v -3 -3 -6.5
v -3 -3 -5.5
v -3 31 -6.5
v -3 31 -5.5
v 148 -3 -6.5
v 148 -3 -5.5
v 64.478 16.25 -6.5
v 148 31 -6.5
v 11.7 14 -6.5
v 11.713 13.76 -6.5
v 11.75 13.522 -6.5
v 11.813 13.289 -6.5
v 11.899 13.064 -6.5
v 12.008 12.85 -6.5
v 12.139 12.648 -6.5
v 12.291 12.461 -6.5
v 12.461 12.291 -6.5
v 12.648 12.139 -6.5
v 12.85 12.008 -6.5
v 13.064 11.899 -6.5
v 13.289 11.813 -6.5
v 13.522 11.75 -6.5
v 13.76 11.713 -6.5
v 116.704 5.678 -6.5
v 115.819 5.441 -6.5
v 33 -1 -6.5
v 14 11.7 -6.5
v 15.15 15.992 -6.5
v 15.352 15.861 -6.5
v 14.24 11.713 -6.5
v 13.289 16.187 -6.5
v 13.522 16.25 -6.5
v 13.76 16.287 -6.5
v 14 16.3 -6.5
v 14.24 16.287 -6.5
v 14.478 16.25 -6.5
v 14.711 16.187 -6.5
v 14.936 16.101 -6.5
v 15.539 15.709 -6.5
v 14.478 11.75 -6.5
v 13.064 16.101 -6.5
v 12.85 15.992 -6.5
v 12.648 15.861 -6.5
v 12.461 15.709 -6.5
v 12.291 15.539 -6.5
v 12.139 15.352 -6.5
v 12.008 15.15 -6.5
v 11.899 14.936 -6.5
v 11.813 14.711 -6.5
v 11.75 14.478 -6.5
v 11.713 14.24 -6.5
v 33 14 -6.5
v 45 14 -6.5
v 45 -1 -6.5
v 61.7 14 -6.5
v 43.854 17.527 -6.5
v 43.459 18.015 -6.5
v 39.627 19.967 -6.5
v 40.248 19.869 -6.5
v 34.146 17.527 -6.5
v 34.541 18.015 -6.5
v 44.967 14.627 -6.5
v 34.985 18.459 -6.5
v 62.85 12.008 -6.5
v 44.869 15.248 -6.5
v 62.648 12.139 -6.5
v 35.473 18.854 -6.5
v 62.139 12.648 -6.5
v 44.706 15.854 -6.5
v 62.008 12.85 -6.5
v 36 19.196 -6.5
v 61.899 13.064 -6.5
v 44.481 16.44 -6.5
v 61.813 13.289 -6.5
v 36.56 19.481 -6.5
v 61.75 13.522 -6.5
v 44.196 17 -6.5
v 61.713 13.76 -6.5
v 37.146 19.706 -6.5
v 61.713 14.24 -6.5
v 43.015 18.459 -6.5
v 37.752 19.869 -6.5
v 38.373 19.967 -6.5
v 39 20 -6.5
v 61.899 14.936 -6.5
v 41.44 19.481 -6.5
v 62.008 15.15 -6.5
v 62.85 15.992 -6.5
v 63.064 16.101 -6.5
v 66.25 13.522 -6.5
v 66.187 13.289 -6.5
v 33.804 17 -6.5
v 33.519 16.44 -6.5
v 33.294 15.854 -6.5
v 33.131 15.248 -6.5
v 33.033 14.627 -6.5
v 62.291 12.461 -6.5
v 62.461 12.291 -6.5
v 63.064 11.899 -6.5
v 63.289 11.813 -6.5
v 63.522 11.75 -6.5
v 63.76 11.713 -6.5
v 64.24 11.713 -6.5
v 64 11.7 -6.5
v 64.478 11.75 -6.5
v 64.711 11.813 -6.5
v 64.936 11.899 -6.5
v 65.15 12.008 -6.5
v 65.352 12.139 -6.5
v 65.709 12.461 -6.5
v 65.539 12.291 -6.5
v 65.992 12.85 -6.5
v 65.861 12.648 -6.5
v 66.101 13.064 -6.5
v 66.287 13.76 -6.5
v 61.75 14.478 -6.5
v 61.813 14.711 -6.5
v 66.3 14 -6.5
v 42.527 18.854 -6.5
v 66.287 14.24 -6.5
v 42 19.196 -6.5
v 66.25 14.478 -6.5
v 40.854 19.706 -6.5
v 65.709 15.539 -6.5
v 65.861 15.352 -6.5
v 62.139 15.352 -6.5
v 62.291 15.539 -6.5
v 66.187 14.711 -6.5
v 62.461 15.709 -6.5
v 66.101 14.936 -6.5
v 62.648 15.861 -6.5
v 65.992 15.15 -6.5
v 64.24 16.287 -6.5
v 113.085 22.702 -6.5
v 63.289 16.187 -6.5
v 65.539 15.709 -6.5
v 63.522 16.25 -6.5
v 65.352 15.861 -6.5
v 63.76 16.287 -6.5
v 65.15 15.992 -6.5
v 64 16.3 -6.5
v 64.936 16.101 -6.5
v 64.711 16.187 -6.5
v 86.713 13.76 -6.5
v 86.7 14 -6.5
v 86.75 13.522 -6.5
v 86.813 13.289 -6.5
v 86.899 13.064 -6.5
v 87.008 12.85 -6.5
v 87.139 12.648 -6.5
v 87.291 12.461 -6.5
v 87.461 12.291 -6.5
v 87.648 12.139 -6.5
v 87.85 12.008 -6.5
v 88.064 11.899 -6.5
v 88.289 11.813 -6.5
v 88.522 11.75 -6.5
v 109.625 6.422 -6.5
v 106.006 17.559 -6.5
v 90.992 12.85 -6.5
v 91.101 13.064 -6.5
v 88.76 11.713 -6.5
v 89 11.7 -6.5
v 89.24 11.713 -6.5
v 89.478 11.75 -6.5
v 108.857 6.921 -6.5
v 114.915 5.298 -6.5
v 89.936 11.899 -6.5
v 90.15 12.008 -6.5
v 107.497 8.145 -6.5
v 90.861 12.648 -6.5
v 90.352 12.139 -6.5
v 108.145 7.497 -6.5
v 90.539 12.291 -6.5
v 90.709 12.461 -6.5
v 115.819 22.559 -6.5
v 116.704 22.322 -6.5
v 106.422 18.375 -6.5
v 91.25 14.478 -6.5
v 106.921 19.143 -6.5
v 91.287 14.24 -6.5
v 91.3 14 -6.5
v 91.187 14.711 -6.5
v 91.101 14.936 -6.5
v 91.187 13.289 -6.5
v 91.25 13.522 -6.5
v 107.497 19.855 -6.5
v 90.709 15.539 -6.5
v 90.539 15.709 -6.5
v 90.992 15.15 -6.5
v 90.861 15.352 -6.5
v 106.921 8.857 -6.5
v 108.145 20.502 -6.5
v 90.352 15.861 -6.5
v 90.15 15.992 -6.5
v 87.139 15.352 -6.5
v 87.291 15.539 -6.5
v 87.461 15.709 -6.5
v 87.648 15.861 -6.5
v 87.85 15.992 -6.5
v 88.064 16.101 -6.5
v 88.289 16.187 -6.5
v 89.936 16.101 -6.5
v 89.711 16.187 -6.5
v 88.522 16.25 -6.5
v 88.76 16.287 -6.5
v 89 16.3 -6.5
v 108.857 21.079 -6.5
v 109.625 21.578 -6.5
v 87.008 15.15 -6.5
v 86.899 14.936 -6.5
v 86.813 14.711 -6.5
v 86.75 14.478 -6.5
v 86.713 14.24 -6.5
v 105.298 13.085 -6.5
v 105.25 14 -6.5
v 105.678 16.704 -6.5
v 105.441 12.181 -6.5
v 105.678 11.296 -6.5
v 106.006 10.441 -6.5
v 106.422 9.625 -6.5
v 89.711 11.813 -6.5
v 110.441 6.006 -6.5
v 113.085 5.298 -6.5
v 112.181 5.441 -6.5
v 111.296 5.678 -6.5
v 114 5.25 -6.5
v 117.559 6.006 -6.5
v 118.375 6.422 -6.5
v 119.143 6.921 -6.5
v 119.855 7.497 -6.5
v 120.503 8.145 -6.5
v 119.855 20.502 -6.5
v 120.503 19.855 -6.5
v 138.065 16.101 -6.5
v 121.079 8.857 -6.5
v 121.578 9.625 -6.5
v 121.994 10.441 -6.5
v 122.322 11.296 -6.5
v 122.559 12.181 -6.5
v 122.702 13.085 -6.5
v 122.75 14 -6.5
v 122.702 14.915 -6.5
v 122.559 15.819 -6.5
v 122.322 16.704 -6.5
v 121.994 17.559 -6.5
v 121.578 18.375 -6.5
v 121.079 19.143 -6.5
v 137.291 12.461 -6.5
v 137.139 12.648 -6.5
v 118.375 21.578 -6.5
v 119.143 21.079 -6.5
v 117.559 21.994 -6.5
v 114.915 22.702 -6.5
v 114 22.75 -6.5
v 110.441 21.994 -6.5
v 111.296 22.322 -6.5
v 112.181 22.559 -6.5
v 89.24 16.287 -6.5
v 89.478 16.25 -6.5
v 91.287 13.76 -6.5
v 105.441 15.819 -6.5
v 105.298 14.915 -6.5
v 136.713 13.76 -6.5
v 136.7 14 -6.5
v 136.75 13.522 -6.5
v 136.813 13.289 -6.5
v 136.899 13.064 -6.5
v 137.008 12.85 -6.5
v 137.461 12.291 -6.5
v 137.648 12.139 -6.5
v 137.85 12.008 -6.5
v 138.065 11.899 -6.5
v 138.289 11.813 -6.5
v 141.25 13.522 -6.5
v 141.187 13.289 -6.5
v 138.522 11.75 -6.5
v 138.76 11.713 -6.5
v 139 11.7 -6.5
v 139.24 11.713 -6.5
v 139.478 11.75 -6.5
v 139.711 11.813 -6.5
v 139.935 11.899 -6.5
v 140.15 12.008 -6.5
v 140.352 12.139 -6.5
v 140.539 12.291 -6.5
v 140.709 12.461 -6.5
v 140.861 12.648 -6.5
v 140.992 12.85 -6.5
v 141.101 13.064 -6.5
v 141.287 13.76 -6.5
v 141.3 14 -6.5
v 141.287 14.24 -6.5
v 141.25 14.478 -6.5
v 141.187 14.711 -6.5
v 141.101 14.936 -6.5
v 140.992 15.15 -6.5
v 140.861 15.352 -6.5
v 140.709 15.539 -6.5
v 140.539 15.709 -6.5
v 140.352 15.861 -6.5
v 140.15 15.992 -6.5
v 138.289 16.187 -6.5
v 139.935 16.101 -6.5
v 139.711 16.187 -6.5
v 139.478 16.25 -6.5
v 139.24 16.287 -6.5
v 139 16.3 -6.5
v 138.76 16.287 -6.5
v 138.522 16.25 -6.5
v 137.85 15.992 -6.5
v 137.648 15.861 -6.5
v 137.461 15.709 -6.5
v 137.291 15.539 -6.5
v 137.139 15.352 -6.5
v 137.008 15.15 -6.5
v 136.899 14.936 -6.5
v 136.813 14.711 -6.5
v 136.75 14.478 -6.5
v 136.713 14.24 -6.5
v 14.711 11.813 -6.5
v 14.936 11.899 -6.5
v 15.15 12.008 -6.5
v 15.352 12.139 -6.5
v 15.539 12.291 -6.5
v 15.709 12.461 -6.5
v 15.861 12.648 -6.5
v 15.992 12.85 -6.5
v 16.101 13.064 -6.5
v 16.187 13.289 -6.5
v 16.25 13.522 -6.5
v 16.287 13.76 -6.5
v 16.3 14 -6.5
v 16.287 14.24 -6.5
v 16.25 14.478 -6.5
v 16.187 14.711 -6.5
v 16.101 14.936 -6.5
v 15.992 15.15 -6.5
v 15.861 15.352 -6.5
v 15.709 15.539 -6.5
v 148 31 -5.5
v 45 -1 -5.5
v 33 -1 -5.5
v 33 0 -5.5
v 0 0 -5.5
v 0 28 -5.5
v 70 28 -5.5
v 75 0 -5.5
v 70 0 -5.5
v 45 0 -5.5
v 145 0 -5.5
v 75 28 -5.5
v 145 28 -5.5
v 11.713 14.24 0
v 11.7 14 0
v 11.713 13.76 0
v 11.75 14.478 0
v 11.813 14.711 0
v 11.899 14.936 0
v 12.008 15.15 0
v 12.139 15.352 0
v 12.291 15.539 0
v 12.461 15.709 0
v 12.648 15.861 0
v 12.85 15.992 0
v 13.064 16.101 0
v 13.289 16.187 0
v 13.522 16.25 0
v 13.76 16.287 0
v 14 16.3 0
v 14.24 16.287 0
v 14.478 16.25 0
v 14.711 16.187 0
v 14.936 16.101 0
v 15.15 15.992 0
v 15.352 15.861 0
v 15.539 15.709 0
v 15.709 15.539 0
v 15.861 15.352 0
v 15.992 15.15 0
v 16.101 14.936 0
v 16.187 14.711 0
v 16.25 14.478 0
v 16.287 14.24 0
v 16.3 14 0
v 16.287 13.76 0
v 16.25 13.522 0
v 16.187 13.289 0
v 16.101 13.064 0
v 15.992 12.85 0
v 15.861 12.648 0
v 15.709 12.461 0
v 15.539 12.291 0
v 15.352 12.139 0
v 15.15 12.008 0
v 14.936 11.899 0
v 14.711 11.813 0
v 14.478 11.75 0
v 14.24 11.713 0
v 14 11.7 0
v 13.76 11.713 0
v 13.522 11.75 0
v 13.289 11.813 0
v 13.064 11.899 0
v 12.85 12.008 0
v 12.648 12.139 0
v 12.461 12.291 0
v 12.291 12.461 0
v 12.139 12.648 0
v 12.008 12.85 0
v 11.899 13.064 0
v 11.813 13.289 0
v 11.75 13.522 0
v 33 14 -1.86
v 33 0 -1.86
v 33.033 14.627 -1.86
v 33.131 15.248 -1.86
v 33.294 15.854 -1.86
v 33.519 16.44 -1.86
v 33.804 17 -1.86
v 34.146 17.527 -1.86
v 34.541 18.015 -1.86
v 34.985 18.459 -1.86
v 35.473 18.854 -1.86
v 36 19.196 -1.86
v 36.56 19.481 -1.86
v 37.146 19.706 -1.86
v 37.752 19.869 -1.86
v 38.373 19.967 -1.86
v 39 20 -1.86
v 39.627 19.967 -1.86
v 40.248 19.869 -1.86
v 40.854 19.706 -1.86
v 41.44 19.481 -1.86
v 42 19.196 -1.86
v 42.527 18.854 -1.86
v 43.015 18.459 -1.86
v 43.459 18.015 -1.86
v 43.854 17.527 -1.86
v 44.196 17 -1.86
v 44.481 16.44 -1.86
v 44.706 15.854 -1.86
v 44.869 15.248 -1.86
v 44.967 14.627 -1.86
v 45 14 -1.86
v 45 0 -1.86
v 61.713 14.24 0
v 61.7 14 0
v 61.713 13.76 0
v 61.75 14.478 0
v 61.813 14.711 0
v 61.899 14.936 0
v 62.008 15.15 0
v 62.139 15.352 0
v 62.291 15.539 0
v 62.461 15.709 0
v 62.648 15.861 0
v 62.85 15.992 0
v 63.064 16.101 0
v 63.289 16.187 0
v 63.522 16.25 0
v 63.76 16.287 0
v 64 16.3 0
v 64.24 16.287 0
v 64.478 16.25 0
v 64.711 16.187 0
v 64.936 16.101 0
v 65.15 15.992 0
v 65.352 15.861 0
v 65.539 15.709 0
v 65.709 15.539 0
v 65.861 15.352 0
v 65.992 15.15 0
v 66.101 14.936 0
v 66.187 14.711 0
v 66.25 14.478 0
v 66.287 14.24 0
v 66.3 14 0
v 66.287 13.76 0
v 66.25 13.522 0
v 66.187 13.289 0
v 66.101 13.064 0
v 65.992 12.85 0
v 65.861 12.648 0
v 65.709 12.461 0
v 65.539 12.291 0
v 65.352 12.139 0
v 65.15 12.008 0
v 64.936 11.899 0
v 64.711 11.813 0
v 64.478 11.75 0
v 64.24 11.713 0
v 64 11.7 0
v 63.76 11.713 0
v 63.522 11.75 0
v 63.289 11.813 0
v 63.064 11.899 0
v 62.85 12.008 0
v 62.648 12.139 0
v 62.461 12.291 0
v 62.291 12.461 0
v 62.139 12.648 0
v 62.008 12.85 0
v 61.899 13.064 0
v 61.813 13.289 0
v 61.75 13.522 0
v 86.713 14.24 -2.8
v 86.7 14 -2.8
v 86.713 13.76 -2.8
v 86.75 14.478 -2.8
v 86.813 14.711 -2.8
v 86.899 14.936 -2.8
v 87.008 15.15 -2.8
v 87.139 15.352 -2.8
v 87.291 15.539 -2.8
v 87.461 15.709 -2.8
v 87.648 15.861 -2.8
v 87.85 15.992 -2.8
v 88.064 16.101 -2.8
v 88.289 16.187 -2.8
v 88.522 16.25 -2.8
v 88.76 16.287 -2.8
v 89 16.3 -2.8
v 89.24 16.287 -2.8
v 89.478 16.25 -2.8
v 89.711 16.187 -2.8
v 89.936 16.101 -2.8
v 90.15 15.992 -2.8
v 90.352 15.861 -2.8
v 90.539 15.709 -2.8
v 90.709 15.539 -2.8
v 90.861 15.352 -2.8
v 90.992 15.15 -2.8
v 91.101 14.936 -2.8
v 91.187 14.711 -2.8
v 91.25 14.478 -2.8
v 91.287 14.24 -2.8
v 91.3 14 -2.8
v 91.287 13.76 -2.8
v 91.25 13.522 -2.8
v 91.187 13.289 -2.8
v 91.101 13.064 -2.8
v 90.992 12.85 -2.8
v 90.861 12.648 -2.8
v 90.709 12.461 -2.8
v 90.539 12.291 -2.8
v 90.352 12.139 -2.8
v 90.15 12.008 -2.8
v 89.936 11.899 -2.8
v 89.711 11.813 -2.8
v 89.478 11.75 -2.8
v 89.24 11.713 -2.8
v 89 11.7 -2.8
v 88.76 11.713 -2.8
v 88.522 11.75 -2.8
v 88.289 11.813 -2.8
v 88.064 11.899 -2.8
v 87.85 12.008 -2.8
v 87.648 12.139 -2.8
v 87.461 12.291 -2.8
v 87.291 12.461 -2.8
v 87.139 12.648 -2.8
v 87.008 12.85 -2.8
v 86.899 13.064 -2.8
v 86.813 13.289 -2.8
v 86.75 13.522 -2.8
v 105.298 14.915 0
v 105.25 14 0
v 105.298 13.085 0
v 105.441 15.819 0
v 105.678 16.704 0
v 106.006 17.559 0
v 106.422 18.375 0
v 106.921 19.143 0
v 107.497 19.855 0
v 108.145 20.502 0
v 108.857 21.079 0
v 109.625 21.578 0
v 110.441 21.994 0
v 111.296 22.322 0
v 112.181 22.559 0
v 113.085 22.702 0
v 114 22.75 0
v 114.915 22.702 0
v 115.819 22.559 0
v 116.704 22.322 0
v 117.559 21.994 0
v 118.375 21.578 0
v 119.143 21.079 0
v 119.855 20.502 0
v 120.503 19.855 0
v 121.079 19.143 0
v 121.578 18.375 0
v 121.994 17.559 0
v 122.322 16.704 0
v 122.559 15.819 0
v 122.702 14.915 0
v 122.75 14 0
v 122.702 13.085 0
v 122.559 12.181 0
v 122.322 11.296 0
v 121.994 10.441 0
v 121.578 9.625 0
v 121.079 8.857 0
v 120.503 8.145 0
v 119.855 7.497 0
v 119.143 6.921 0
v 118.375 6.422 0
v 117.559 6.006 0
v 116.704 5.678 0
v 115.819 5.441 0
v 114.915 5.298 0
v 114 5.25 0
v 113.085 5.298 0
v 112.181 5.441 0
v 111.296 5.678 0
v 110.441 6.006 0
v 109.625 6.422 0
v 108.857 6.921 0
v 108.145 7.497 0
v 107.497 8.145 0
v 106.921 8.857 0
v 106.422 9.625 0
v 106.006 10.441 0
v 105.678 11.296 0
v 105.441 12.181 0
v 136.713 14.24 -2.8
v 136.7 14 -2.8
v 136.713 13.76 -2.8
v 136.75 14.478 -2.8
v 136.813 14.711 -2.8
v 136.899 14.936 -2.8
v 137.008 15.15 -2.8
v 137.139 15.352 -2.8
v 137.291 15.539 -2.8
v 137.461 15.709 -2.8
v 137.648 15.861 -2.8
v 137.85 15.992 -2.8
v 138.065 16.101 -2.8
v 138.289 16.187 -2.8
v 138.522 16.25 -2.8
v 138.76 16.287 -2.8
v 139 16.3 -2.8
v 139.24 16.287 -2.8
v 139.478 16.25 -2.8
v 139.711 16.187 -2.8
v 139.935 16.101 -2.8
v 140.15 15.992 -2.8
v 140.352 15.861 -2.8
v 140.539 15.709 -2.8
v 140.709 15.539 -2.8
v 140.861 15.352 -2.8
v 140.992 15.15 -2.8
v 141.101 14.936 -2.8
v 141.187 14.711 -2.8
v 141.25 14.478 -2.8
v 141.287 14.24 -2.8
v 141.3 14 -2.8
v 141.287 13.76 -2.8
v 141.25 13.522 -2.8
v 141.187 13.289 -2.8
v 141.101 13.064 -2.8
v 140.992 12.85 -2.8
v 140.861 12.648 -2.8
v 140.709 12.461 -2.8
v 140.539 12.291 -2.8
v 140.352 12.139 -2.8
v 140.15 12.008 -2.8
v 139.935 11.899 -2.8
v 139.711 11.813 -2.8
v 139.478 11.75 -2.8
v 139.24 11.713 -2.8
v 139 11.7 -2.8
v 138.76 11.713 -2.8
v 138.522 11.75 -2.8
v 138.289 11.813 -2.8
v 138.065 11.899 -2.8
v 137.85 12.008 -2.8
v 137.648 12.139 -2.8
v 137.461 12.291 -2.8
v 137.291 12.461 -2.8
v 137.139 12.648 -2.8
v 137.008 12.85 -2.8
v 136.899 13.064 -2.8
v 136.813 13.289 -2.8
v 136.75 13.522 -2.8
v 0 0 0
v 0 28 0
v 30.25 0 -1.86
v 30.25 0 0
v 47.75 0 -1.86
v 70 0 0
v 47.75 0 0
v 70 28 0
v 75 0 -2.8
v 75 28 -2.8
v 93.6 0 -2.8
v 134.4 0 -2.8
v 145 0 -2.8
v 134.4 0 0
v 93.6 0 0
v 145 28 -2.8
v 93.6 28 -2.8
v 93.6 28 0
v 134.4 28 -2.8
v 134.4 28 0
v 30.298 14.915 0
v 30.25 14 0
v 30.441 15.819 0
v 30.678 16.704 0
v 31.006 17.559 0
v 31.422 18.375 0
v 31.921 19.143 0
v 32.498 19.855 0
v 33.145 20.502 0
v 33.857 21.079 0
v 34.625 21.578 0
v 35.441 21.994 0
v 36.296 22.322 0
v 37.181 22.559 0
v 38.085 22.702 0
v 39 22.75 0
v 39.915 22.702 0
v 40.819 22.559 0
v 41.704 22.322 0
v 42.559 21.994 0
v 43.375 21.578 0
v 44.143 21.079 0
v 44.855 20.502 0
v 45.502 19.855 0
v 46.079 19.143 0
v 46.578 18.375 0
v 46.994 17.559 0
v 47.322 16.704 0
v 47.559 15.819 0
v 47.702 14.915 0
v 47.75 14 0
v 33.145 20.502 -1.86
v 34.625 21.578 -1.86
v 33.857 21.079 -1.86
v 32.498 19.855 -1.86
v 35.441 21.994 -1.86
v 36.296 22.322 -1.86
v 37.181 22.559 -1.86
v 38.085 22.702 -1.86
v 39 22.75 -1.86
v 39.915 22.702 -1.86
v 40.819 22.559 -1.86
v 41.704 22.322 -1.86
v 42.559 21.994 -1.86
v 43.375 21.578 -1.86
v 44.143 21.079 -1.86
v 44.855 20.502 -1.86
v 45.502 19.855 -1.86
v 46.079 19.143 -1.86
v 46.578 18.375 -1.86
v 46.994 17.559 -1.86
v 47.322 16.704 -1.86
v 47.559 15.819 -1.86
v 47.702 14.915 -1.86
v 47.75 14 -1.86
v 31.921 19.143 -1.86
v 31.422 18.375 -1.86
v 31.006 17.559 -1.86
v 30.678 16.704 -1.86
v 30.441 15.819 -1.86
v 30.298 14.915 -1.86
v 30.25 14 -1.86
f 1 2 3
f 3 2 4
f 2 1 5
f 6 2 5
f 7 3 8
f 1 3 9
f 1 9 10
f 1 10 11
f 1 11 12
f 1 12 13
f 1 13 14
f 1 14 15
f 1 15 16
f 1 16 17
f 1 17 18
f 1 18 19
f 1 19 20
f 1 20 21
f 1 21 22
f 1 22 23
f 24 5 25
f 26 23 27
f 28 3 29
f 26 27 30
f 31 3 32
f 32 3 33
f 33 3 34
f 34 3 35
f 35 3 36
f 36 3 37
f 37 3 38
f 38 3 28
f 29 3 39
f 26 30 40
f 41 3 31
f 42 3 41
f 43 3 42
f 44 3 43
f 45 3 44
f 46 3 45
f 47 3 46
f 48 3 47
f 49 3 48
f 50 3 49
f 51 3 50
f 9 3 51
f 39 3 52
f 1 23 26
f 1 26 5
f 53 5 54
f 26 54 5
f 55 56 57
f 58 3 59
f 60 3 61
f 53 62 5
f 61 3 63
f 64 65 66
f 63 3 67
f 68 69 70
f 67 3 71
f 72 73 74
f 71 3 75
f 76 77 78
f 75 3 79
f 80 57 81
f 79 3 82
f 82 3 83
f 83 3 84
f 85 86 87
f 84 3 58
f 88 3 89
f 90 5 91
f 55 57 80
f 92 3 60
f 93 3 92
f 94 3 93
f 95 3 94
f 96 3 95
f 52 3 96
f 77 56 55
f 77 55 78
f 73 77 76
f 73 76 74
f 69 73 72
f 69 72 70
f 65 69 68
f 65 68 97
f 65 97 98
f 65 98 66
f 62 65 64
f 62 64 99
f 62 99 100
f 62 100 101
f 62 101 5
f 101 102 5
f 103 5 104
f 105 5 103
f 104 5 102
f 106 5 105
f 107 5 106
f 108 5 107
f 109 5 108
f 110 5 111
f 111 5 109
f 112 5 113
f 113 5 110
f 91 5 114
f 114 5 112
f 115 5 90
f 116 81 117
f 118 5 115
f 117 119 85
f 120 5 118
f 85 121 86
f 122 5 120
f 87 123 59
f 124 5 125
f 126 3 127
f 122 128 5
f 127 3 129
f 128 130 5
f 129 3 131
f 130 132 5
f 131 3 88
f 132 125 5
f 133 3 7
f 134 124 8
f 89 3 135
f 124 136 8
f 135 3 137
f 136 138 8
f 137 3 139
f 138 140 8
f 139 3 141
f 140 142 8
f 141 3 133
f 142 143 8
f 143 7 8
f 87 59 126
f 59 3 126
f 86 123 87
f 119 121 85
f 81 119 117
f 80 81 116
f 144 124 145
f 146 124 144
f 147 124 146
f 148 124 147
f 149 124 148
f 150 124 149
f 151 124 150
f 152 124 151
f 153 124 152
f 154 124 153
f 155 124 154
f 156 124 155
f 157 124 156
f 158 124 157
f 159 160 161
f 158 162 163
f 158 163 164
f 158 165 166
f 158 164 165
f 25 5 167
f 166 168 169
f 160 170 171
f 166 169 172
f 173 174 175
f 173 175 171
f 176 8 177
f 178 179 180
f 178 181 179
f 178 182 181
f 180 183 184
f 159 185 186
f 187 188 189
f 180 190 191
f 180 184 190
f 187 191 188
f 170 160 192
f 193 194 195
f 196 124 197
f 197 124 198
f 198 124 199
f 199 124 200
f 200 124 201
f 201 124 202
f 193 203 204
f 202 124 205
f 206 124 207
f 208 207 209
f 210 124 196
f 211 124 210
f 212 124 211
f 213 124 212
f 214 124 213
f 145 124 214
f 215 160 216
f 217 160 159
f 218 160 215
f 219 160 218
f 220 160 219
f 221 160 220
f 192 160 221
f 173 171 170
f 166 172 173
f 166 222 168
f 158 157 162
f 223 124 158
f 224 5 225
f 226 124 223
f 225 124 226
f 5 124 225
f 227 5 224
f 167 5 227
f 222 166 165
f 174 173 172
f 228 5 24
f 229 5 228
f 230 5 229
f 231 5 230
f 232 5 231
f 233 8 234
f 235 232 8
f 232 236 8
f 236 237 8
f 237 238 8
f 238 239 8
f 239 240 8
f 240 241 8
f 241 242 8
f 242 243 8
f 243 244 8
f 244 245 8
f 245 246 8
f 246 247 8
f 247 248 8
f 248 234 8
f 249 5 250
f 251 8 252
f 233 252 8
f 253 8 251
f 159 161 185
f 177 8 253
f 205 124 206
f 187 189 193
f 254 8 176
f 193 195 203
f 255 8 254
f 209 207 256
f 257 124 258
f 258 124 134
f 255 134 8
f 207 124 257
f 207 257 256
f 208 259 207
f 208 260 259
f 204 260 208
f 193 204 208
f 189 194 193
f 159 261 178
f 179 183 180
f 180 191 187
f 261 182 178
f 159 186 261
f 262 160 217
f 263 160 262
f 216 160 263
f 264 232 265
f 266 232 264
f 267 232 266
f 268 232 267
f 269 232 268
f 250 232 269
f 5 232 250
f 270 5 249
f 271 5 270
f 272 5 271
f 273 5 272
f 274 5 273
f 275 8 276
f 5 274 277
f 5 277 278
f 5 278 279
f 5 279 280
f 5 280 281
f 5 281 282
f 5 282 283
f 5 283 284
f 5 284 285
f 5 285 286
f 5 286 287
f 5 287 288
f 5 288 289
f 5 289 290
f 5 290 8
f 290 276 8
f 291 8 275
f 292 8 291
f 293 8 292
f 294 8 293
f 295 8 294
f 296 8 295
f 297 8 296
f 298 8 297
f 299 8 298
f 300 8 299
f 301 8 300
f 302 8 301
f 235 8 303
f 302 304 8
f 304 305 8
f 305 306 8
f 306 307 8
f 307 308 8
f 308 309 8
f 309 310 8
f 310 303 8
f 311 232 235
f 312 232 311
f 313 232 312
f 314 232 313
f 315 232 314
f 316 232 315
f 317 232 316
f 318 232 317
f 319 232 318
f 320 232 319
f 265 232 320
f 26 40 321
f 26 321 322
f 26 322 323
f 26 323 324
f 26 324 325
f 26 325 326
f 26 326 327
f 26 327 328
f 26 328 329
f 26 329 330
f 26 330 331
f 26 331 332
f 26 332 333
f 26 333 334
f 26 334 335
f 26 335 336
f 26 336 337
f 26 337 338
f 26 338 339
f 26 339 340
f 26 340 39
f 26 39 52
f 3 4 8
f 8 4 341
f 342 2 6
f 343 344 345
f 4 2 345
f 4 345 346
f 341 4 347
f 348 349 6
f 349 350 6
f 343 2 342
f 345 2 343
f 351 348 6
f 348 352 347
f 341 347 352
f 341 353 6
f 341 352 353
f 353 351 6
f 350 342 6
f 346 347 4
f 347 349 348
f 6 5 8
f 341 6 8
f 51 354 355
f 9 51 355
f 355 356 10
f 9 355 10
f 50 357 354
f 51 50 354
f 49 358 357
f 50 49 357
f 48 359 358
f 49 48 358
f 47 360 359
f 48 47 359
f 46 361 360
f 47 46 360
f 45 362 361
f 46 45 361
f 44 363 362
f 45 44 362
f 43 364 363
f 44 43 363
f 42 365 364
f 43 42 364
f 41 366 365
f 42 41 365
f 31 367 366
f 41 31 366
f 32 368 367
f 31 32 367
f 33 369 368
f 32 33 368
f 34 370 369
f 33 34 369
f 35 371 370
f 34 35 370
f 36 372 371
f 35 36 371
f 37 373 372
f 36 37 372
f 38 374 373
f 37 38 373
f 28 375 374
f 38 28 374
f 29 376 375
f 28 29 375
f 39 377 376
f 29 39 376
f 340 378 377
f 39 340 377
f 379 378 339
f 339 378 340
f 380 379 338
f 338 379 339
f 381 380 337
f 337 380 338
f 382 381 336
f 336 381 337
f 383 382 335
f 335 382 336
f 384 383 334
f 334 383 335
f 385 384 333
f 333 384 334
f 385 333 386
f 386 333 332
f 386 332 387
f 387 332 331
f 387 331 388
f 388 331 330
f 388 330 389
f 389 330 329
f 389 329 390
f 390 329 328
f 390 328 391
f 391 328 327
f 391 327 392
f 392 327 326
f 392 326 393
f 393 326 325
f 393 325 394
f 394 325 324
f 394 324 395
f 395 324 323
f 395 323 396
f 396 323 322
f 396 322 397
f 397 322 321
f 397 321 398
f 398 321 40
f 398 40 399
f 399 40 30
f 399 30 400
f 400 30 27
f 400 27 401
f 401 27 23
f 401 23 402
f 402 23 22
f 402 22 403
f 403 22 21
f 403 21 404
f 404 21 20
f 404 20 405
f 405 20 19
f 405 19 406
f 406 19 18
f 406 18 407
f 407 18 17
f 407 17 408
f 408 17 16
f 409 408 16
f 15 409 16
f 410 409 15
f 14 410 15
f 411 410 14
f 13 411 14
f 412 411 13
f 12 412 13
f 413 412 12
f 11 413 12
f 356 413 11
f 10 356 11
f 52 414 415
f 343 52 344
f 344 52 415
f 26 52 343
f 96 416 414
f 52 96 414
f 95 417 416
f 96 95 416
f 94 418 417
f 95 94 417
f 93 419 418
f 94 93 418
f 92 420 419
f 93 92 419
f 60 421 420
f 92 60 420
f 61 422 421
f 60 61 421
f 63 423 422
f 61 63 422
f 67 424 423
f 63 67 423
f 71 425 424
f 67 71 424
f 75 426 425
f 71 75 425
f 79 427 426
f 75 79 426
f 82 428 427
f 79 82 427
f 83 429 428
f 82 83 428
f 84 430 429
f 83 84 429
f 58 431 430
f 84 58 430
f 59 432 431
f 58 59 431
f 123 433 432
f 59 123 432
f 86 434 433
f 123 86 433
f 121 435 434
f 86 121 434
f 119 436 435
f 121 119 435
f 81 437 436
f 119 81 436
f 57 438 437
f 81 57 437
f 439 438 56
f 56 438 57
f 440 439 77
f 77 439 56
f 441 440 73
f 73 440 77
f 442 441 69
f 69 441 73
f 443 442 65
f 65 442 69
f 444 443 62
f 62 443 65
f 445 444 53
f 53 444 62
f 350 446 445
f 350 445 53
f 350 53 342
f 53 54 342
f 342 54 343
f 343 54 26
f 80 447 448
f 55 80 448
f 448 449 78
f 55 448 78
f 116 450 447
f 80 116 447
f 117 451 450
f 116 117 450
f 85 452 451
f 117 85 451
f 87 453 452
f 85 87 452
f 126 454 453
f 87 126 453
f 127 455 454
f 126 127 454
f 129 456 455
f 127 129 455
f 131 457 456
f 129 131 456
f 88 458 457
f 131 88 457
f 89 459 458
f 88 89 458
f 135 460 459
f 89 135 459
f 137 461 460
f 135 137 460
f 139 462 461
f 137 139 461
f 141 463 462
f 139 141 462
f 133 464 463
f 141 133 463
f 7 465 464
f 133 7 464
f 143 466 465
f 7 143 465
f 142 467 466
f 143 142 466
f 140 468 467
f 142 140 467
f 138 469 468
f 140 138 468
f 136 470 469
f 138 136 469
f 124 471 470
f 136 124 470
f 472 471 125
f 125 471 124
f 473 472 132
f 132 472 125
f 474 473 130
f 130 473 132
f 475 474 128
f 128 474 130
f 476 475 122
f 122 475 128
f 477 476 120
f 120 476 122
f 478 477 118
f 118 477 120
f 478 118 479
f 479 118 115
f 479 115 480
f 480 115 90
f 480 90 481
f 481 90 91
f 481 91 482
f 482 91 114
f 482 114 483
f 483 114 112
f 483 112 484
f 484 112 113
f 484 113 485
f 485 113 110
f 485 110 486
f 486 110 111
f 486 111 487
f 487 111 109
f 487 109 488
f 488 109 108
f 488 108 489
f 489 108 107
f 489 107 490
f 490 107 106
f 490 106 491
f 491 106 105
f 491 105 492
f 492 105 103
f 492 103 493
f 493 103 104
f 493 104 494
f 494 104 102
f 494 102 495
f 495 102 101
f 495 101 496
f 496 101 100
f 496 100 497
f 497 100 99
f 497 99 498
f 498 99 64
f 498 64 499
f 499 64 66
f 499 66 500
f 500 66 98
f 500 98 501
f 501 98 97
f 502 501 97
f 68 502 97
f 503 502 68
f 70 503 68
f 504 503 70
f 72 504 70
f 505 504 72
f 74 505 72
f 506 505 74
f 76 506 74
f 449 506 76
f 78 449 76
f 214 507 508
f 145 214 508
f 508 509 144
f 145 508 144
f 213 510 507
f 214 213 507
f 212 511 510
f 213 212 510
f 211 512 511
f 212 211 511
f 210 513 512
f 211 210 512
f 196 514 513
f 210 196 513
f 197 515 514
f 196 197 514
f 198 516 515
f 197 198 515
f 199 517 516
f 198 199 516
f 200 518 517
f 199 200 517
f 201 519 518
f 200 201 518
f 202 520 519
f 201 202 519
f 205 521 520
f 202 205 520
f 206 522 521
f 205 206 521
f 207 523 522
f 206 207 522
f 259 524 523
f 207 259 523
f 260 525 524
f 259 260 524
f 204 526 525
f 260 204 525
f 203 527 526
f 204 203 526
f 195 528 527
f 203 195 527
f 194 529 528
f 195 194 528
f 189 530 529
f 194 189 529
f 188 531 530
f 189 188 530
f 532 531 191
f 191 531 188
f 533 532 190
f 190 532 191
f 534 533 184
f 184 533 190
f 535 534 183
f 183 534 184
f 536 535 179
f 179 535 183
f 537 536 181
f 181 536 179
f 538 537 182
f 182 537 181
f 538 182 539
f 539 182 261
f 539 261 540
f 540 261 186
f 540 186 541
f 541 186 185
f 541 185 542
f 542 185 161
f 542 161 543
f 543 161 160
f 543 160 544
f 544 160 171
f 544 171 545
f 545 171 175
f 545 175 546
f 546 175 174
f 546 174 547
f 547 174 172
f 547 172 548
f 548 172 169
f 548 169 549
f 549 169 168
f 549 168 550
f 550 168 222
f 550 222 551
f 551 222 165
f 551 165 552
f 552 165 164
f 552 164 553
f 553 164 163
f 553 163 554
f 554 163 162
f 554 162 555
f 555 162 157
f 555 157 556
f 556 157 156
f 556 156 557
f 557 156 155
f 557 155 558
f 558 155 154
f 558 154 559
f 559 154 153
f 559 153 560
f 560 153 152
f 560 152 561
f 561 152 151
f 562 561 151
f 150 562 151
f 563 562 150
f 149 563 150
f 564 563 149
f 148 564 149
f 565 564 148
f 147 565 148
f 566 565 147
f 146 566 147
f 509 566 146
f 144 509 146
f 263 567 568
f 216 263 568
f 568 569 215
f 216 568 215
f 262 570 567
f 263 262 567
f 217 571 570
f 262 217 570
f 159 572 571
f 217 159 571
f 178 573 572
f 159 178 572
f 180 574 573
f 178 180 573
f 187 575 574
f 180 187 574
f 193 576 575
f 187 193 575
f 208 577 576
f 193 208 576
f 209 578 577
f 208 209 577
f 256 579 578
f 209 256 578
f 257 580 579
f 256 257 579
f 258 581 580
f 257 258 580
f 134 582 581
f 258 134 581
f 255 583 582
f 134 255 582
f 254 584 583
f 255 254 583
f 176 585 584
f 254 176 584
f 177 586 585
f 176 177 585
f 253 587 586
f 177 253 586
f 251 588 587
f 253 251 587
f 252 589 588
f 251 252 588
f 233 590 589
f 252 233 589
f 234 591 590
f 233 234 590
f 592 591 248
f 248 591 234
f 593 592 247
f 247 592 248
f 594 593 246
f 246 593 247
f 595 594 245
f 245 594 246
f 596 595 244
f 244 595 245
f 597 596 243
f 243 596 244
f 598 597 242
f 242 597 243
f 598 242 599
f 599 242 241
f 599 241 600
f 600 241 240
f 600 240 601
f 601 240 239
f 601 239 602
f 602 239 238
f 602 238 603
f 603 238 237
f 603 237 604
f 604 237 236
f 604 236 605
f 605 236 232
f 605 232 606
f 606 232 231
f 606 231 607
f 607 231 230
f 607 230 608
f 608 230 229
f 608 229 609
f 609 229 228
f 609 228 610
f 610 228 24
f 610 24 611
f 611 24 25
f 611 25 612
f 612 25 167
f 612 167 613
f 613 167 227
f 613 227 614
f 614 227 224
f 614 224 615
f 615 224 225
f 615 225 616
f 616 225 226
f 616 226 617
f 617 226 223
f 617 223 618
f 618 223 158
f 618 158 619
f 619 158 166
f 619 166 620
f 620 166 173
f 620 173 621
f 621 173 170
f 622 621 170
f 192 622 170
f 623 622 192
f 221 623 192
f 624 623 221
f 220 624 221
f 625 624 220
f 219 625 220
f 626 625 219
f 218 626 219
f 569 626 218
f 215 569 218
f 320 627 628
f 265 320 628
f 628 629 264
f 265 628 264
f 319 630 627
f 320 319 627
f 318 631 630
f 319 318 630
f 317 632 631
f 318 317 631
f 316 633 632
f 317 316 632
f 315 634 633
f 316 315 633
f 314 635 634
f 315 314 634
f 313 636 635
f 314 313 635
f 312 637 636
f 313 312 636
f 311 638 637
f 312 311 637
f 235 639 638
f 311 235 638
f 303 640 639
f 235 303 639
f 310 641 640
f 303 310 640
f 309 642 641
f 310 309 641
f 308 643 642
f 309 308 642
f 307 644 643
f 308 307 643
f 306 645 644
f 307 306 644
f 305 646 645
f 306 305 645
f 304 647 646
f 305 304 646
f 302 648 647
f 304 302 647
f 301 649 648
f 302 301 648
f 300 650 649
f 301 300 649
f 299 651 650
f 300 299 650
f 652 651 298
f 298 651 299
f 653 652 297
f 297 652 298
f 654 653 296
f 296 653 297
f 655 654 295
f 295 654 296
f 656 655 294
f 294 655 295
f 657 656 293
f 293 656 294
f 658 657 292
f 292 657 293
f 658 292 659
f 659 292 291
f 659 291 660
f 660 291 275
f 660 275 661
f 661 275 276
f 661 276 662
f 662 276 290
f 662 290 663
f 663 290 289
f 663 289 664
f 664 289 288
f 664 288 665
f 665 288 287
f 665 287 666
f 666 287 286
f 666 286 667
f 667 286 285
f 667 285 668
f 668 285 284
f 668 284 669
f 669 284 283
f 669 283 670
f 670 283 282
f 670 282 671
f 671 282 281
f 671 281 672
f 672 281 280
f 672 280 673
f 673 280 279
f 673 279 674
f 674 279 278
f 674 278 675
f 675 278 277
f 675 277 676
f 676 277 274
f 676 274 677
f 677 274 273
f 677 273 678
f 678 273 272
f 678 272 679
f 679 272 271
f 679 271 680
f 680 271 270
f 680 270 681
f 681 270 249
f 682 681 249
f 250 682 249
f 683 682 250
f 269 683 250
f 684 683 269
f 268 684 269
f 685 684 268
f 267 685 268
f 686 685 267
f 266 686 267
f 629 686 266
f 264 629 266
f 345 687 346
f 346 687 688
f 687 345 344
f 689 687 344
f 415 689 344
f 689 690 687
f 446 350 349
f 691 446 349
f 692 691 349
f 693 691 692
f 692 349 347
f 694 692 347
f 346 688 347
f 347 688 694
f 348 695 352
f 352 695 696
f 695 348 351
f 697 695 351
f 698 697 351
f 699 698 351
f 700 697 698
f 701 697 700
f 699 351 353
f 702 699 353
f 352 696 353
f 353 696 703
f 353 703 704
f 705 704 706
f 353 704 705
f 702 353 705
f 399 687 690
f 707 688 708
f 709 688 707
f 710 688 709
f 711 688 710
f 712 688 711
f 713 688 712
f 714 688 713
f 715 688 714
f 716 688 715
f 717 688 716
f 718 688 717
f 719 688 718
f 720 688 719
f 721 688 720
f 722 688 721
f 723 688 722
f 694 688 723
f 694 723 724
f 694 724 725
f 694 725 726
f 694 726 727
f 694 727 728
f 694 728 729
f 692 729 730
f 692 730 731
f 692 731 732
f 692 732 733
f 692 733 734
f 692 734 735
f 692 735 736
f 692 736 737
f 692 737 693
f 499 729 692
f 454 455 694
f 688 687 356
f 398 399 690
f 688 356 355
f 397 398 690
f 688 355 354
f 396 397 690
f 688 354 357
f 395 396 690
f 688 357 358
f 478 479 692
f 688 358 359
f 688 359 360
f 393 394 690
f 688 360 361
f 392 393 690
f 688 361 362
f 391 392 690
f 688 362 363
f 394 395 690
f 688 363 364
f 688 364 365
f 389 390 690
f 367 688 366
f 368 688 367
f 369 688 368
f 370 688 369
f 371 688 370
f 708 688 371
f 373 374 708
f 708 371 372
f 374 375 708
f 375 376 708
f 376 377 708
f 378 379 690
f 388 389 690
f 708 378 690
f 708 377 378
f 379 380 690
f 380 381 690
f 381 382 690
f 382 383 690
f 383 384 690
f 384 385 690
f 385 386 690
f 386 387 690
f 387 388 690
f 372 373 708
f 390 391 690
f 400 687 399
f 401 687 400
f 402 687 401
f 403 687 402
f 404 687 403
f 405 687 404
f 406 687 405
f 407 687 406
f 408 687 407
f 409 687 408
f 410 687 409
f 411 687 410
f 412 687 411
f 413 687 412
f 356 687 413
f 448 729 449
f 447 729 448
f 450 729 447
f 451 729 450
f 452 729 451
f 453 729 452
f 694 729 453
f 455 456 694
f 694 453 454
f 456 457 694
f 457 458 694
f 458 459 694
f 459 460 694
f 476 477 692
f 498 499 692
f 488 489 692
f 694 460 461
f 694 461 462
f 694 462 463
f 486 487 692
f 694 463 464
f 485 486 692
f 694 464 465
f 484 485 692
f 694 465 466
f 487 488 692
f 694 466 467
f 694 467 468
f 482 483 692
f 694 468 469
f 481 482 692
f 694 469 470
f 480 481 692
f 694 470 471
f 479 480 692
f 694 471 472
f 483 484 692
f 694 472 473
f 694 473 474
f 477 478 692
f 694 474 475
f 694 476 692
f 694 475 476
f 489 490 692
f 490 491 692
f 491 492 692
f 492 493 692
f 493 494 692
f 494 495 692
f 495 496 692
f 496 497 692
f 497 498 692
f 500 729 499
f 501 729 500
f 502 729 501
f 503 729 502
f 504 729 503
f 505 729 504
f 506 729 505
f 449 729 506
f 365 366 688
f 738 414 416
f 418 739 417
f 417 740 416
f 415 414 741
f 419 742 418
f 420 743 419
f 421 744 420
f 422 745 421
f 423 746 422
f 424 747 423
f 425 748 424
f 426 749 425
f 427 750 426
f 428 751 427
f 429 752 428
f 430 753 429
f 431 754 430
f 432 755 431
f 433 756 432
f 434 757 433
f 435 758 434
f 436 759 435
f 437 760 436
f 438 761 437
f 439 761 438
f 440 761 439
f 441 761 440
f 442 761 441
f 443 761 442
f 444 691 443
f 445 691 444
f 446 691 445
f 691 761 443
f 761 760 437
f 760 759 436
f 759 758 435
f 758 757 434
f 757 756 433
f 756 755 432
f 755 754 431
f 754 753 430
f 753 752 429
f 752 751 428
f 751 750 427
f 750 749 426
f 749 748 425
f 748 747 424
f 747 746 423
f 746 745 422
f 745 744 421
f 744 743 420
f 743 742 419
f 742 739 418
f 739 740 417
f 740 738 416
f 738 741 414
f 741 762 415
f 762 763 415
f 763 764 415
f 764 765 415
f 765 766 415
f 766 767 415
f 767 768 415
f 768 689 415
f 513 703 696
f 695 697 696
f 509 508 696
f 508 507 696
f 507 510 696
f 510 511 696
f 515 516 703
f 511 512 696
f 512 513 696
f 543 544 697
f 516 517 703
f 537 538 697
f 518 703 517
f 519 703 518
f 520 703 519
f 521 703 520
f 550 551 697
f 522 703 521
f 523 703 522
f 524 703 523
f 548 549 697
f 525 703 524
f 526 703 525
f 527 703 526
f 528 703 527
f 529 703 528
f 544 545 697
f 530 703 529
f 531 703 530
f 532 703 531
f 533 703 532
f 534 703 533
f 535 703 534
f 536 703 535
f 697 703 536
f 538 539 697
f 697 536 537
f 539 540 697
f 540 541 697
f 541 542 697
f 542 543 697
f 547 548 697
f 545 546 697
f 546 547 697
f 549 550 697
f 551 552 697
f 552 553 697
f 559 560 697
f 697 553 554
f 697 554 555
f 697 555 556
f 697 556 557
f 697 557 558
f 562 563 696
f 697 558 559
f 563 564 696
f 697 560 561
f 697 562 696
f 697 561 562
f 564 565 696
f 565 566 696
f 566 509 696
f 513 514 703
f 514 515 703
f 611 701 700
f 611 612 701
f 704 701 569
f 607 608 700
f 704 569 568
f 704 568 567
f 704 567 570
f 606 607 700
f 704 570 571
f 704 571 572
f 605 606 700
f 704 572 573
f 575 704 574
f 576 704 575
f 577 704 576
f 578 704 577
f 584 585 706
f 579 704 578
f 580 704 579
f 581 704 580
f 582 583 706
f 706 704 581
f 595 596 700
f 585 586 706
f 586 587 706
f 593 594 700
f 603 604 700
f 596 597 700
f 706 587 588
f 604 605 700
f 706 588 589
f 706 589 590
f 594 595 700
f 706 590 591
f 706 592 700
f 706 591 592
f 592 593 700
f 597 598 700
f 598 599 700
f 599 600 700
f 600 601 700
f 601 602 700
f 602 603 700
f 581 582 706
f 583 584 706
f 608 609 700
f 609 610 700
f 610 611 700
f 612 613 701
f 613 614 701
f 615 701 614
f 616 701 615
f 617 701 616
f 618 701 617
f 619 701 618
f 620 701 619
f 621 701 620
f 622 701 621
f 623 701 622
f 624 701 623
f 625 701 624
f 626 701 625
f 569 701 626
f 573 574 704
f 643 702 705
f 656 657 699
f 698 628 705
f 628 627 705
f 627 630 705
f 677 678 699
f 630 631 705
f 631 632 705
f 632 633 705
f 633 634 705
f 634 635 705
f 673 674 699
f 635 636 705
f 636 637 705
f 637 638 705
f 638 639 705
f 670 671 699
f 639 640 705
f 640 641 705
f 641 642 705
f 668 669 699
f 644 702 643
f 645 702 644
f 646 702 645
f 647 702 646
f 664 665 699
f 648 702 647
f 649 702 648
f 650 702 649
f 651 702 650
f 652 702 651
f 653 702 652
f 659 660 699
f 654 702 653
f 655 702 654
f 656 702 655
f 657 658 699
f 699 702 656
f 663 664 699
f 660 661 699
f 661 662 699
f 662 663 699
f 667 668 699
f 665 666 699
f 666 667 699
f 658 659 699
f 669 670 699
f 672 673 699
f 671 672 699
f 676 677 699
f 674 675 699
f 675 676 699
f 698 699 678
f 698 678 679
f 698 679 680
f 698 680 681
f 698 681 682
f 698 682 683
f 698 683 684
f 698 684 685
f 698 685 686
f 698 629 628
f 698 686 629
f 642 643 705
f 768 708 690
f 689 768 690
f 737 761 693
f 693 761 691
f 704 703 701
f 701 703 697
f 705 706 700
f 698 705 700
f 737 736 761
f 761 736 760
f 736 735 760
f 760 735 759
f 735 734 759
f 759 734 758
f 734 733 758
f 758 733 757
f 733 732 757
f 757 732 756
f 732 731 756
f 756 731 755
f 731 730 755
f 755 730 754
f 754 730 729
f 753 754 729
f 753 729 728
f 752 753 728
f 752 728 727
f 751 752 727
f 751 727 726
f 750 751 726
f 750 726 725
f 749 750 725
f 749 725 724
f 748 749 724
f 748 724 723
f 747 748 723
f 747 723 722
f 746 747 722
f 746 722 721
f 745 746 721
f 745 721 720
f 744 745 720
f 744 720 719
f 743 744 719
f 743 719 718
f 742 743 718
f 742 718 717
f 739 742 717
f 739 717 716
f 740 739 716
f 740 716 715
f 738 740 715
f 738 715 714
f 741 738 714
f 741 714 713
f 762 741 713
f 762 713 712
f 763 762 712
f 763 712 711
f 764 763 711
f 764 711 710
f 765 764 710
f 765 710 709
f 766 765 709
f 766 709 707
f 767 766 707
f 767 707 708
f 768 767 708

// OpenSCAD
/*
 * hotend mount
 *
 * NOTE: This needs to be milled out of a rigid heat resistant material.
 * It is tested with MDF.
 *
 * Mounts a j-head hotend via the notch at the top of barrel.
 *
 * Copyright 2012 <b@Zi.iS>
 * License CC BY 3.0
 */
$fn=60;

m4 = 4.6/2;

translate([
	0,
	0,
	-6.5
]) {
	support1();
}
translate([
    75,
    0,
    -6.5
]) {
	support2();
}

module support1(
	length = 70,
	width = 28,
	thickness = 6.5,
	bolt = m4,
	offset = 8,
	pitch = 50,
	mount = 17.5/2,
	hole = 12/2,
	mount_height=4.64
	
) {
	difference() {
		union() {
			cube([
				length,
				width,
				thickness
			]);
			//Lip to help mill outline (remove if not milling)
			translate([
				-3,
				-3,
				0
			]) {
				cube([
					length+6,
					width+6,
					1
				]);
			}
		}

		translate([
			offset + (length-offset-pitch)/2,
			width/2,
			-1
		]) {
			cylinder(
				r=bolt,
				h=thickness+2
			);
		}
		translate([
			offset + (length-offset-pitch)/2+pitch,
			width/2,
			-1
		]) {
			cylinder(
				r=bolt,
				h=thickness+2
			);
		}
		translate([
			offset + (length-offset)/2,
			width/2,
			-1
		]) {
			cylinder(
				r=hole,
				h=thickness+2
			);
		}
		translate([
			offset + (length-offset)/2-hole,
			-1,
			-1
		]) {
			cube([
				hole*2,
				width/2+1,
				thickness+2
			]);
		}
		translate([
			offset + (length-offset)/2,
			width/2,
			mount_height
		]) {
			cylinder(
				r=mount,
				h=thickness+2
			);
		}
		translate([
			offset + (length-offset)/2-mount,
			-1,
			mount_height
		]) {
			cube([
				mount*2,
				width/2+1,
				thickness+2
			]);
		}
	}
}	

module support2(
	length = 70,
	width = 28,
	thickness = 6.5,
	bolt = m4,
	offset = 8,
	pitch = 50,
	mount = 17.5/2,
	hole = 12/2,
	step = 3-.2,
	step_inset = 4.6,
) {
	difference() {
		union() {
			cube([
				length,
				width,
				thickness
			]);
			//Lip to help mill outline (remove if not milling)
			translate([
				-3,
				-3,
				0
			]) {
				cube([
					length+6,
					width+6,
					1
				]);
			}
		}

		translate([
			offset + (length-offset-pitch)/2,
			width/2,
			-1
		]) {
			cylinder(
				r=bolt,
				h=thickness+2
			);
		}
		translate([
			offset + (length-offset-pitch)/2+pitch,
			width/2,
			-1
		]) {
			cylinder(
				r=bolt,
				h=thickness+2
			);
		}
		
		translate([
			offset + (length-offset)/2,
			width/2,
			-1
		]) {
			cylinder(
				r=mount,
				h=thickness+2
			);
		}
		translate([
			-1,
			-1,
			thickness-step
		]) {
			cube([
				1+offset + (length-offset-pitch)/2+step_inset,
				width+6,
				step+1
			]);
		}
		translate([
			offset + (length-offset-pitch)/2-step_inset+pitch,
			-1,
			thickness-step
		]) {
			cube([
				100,
				width+6,
				step+1
			]);
		}
	}
}	
